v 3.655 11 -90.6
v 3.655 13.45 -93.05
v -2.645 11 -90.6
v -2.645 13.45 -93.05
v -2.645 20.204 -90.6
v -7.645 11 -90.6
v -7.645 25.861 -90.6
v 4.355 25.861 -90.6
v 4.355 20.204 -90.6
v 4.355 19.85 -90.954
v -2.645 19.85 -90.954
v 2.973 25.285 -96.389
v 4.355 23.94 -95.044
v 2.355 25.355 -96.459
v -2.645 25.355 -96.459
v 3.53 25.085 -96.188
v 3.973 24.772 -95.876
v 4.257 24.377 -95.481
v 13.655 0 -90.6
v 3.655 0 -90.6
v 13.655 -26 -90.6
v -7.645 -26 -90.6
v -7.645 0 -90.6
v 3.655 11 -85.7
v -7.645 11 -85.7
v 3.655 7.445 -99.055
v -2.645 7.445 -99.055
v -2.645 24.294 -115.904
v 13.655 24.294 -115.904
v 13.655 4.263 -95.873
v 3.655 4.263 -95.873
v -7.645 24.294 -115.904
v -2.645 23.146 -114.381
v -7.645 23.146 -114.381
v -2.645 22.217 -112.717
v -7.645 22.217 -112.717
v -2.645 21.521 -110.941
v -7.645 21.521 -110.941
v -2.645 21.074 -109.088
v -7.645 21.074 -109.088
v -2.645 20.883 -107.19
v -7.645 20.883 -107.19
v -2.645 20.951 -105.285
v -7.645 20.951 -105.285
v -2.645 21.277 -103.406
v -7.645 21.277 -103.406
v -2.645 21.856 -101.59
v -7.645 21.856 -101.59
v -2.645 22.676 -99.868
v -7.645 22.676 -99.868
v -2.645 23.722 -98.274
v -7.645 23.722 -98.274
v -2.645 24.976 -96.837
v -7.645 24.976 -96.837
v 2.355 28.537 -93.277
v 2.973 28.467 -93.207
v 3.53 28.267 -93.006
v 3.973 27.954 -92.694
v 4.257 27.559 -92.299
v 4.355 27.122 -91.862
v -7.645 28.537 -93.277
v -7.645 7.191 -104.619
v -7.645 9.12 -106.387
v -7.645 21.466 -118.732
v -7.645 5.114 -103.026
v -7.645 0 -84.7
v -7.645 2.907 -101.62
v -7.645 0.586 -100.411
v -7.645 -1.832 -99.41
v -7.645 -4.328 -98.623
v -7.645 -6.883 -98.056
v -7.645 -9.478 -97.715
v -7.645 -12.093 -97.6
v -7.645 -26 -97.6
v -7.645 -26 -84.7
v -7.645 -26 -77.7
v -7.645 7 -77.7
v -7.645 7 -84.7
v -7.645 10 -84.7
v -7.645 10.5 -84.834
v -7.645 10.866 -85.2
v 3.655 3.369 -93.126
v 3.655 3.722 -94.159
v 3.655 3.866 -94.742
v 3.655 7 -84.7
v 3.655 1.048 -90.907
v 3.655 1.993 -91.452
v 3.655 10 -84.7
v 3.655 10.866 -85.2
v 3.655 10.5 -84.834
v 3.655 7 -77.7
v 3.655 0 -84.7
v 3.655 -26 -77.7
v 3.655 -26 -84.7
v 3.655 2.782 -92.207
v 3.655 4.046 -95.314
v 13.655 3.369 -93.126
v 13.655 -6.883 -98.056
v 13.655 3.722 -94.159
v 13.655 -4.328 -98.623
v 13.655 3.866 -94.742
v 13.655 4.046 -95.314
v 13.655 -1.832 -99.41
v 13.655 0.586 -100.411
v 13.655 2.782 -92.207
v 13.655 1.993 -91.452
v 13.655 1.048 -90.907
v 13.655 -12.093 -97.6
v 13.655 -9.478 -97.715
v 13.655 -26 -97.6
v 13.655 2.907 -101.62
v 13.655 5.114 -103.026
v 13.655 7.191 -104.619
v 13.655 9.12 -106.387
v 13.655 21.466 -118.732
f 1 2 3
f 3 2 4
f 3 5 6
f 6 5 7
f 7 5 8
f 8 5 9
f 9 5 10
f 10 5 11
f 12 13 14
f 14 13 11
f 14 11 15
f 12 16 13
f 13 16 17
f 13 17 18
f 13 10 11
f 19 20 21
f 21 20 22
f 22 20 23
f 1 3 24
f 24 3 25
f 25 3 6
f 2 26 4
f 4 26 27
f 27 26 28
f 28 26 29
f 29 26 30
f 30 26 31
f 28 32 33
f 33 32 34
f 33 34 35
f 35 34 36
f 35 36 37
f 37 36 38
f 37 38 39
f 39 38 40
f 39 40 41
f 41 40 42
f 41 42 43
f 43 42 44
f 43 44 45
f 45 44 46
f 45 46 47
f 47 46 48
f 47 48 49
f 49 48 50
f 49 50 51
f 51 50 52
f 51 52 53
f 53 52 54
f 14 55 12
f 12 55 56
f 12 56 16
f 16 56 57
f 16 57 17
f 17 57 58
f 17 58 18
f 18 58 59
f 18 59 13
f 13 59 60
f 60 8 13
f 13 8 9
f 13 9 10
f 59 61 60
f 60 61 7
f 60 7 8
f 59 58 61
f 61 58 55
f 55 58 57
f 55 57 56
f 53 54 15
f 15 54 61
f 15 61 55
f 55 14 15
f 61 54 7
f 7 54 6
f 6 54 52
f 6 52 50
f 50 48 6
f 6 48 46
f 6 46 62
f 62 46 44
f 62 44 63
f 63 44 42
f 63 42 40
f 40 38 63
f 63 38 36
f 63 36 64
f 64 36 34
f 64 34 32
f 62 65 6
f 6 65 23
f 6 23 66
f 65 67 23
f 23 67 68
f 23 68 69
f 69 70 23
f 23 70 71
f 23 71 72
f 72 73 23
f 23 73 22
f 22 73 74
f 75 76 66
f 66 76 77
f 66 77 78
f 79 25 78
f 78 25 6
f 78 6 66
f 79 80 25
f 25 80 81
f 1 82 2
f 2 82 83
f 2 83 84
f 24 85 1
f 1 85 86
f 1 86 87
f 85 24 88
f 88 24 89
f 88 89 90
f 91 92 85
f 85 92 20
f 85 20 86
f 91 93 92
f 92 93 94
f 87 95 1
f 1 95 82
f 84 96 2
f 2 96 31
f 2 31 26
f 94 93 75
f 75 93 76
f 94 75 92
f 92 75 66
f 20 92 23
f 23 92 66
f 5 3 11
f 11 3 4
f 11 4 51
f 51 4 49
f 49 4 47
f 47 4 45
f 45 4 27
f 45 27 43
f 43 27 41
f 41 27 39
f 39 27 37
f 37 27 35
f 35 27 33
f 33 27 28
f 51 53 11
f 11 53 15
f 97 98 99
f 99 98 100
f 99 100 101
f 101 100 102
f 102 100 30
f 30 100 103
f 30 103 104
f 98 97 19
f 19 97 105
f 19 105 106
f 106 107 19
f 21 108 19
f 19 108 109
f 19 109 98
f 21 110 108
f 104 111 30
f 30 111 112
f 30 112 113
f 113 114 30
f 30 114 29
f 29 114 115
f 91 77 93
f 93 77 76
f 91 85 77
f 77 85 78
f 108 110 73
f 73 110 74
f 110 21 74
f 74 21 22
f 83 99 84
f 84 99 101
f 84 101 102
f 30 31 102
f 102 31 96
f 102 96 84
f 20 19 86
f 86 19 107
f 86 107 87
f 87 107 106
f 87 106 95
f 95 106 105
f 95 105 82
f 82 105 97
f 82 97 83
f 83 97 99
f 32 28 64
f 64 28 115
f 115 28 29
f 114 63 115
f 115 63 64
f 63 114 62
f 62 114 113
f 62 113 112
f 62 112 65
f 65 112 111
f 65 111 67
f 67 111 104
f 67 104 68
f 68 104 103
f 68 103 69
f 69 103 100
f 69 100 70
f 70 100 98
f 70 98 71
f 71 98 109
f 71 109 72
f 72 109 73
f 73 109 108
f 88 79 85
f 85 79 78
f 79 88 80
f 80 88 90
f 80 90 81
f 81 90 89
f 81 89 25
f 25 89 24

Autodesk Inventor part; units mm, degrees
ref_plane "YZ Plane" through (0, 0, 0) normal (1, 0, 0) x (0, 1, 0)
ref_plane "XZ Plane" through (0, 0, 0) normal (0, 1, 0) x (-1, 0, 0)
ref_plane "XY Plane" through (0, 0, 0) normal (0, 0, 1) x (1, 0, 0)
sketch "Sketch1" plane through (0, 0, 0) normal (0, 1, 0) x (-1, 0, 0)
  line L0 (23.4955, 9.8996) -> (-50.8045, 9.8996)
  line L1 (-50.8045, 9.8996) -> (-50.8045, -84.7004)
  line L2 (-50.8045, -84.7004) -> (23.4955, -84.7004)
  line L3 (23.4955, -84.7004) -> (23.4955, 9.8996)
  line L4 (29.4455, 15.7996) -> (-56.7545, 15.7996)
  line L5 (-56.7545, 15.7996) -> (-56.7545, -90.6004)
  line L6 (-56.7545, -90.6004) -> (29.4455, -90.6004)
  line L7 (29.4455, -90.6004) -> (29.4455, 15.7996)
  line L8 (29.4455, -37.4004) -> (-56.7545, -37.4004) construction
  line L9 (-13.6545, -90.6004) -> (-13.6545, 15.7996) construction
  dimension "d0" = 94.6
  dimension "d1" = 74.3
  dimension "d2" = 106.4
  dimension "d3" = 86.2
extrude "Extrusion1" add sketch "Sketch1" along normal blind 6
fillet "Fillet1" radius 4.5 4 edges at (-23.4955, 3, 9.8996) (50.8045, 3, 9.8996) (50.8045, 3, -84.7004) (-23.4955, 3, -84.7004)
fillet "Fillet2" radius 4.5 4 edges at (56.7545, 3, 15.7996) (-29.4455, 3, 15.7996) (56.7545, 3, -90.6004) (-29.4455, 3, -90.6004)
sketch "Sketch2" plane through (0, 0, 0) normal (0, -1, 0) x (1, 0, 0)
  line L0 (50.8045, -80.2004) -> (50.8045, 5.3996) projected
  arc A0 (46.3045, -84.7004) -> (50.8045, -80.2004) centre (46.3045, -80.2004) ccw projected
  line L1 (-18.9955, -84.7004) -> (46.3045, -84.7004) projected
  arc A1 (-23.4955, -80.2004) -> (-18.9955, -84.7004) centre (-18.9955, -80.2004) ccw projected
  line L2 (-23.4955, 5.3996) -> (-23.4955, -80.2004) projected
  arc A2 (-18.9955, 9.8996) -> (-23.4955, 5.3996) centre (-18.9955, 5.3996) ccw projected
  line L3 (46.3045, 9.8996) -> (-18.9955, 9.8996) projected
  arc A3 (50.8045, 5.3996) -> (46.3045, 9.8996) centre (46.3045, 5.3996) ccw projected
  line L4 (43.8045, -77.7004) -> (-16.4955, -77.7004)
  line L5 (-16.4955, -77.7004) -> (-16.4955, 2.8996)
  line L6 (-16.4955, 2.8996) -> (43.8045, 2.8996)
  line L7 (43.8045, 2.8996) -> (43.8045, -77.7004)
  line L8 (13.6545, -84.7004) -> (13.6545, 9.8996) construction
  line L9 (46.3045, 9.8996) -> (-18.9955, 9.8996) construction
  line L10 (50.8045, -80.2004) -> (50.8045, 5.3996) construction
  line L11 (50.8045, -37.4004) -> (-23.4955, -37.4004) construction
  line L12 (56.7545, 11.2996) -> (56.7545, -86.1004) construction
  point P0 (0, 0)
  dimension "d8" = 5.95
  dimension "d9" = 7
  dimension "d10" = 7
extrude "Extrusion2" add sketch "Sketch2" along normal blind 6
fillet "Fillet3" radius 4.5 4 edges at (43.8045, -3, -77.7004) (43.8045, -3, 2.8996) (-16.4955, -3, 2.8996) (-16.4955, -3, -77.7004)
sketch "Sketch3" plane through (0, 0, 0) normal (0, 1, 0) x (1, 0, 0)
  arc A0 (46.3045, -9.8996) -> (50.8045, -5.3996) centre (46.3045, -5.3996) ccw projected
  line L0 (50.8045, 80.2004) -> (50.8045, -5.3996) projected
  arc A1 (50.8045, 80.2004) -> (46.3045, 84.7004) centre (46.3045, 80.2004) ccw projected
  line L1 (-18.9955, 84.7004) -> (46.3045, 84.7004) projected
  arc A2 (-18.9955, 84.7004) -> (-23.4955, 80.2004) centre (-18.9955, 80.2004) ccw projected
  line L2 (-23.4955, -5.3996) -> (-23.4955, 80.2004) projected
  arc A3 (-23.4955, -5.3996) -> (-18.9955, -9.8996) centre (-18.9955, -5.3996) ccw projected
  line L3 (46.3045, -9.8996) -> (-18.9955, -9.8996) projected
  arc A4 (43.8045, 73.2004) -> (39.3045, 77.7004) centre (39.3045, 73.2004) ccw projected
  line L4 (43.8045, 1.6004) -> (43.8045, 73.2004) projected
  arc A5 (39.3045, -2.8996) -> (43.8045, 1.6004) centre (39.3045, 1.6004) ccw projected
  line L5 (-11.9955, -2.8996) -> (39.3045, -2.8996) projected
  arc A6 (-16.4955, 1.6004) -> (-11.9955, -2.8996) centre (-11.9955, 1.6004) ccw projected
  line L6 (-16.4955, 73.2004) -> (-16.4955, 1.6004) projected
  arc A7 (-11.9955, 77.7004) -> (-16.4955, 73.2004) centre (-11.9955, 73.2004) ccw projected
  line L7 (39.3045, 77.7004) -> (-11.9955, 77.7004) projected
  point P0 (0, 0)
extrude "Extrusion3" add sketch "Sketch3" along normal blind 2
ref_plane "Work Plane1" through (-23.4955, 6, -84.7004) normal (0, 0.7071068, -0.7071068) x (1, 0, 0)
sketch "Sketch5" plane through (-23.4955, 6, -84.7004) normal (0, 0.7071068, -0.7071068) x (1, 0, 0)
  line L0 (4.5, 0) -> (69.8, 0) projected
  line L1 (37.15, 0) -> (37.15, -42.3796) construction
  circle A0 centre (37.15, 1.34) radius 1.34 construction
  line L2 (37.15, 1.34) -> (37.15, -18.66) construction
  line L3 (38.49, 1.34) -> (38.49, -18.66)
  line L4 (35.81, -18.66) -> (35.81, 1.34)
  arc A1 (38.49, 1.34) -> (35.81, 1.34) centre (37.15, 1.34) ccw
  arc A2 (35.81, -18.66) -> (38.49, -18.66) centre (37.15, -18.66) ccw
  point P0 (23.4955, -55.6496)
  point P1 (37.15, -8.66)
  dimension "d20" = 2.68
  dimension "d19" = 90
  dimension "d21" = 20
  dimension "d22" = 2.68
extrude "Extrusion5" cut sketch "Sketch5" along normal mid plane 51.82
sketch "Sketch6" plane through (-23.4955, 6, -84.7004) normal (0, 0.7071068, -0.7071068) x (1, 0, 0)
  arc A0 (38.49, 1.34) -> (35.81, 1.34) centre (37.15, 1.34) ccw projected
  line L0 (38.49, 0) -> (38.49, 1.34) projected
  arc A1 (38.49, 1.34) -> (35.81, 1.34) centre (37.15, 1.34) ccw projected
  line L1 (35.81, 1.34) -> (35.81, 0) projected
  line L2 (4.5, 0) -> (35.81, 0) projected
  line L3 (4.5, 2.8284) -> (4.5, 0) projected
  line L4 (4.5, 2.8284) -> (69.8, 2.8284) projected
  line L5 (69.8, 0) -> (69.8, 2.8284) projected
  line L6 (38.49, 0) -> (69.8, 0) projected
  line L7 (75.75, 8.4146) -> (-1.45, 8.4146) projected
  line L8 (74.9473, 2.68) -> (-18.0058, 2.68) construction
  line L9 (0, -55.225) -> (0, 5.3033) construction
  line L10 (90.8097, 9.1284) -> (-67.1811, 9.1284) construction
  line L11 (37.15, 2.68) -> (37.15, 37.6448) construction
  line L12 (58.45, 9.1284) -> (15.85, 9.1284)
  line L13 (15.85, 9.1284) -> (15.85, 13.1284)
  line L14 (15.85, 13.1284) -> (58.45, 13.1284)
  line L15 (58.45, 13.1284) -> (58.45, 9.1284)
  point P0 (23.4955, -55.6496)
  dimension "d25" = 6.3
  dimension "d26" = 42.6
  dimension "d27" = 4
extrude "Extrusion6" add sketch "Sketch6" along normal blind 35 contours L12 L13 L14 L15
sketch "Sketch7" plane through (-23.4955, 30.7487, -109.4492) normal (0, 0.7071068, -0.7071068) x (-1, 0, 0)
  line L0 (-15.85, -13.1284) -> (-15.85, -9.1284) projected
  line L1 (-58.45, -9.1284) -> (-58.45, -13.1284) projected
  point P0 (-23.4955, 55.6496)
  point P1 (-15.85, -11.1284)
  point P2 (-58.45, -11.1284)
  dimension "d30" = 42.6
sketch "Sketch8" plane through (34.9545, -3.2832, -93.9836) normal (1, 0, 0) x (0, 0.7071068, -0.7071068)
  line L0 (-0.0707, 4.7139) -> (-3.2527, 7.8958) projected
  line L1 (0.9899, 12.1385) -> (4.1719, 8.9565) projected
  line L2 (0, 0) -> (35, 0) projected
  line L3 (-0.0707, 4.7139) -> (-14.2134, -9.4288) construction
  line L4 (0, 4) -> (35, 4) projected
  line L5 (0, 4) -> (0, 0) projected
  line L6 (4.1719, 8.9565) -> (-4.7846, 0)
  line L7 (-4.7846, 0) -> (0, 0)
  line L8 (0, 0) -> (0, 4) projected
  line L9 (0, 0) -> (0, 4)
  line L10 (4.1719, 8.9565) -> (4.1719, 4)
  line L11 (0, 4) -> (35, 4) projected
  line L12 (4.1719, 4) -> (0, 4)
  line L13 (-0.0707, 4.7139) -> (4.1719, 8.9565) projected
  point P0 (-64.1349, 68.778)
  point P1 (4.1719, 4)
extrude "Extrusion7" add sketch "Sketch8" against normal blind 42.6
sketch "Sketch9" plane through (34.9545, -6.6664, -90.6004) normal (1, 0, 0) x (0, 0, -1)
  line L0 (0, 6.6664) -> (0, 0) projected
  line L1 (0, 0) -> (28.1319, 28.1319) projected
  line L2 (0, 0) -> (0, 6.6664) projected
  line L3 (0, 0) -> (0, -20)
  line L4 (0, -20) -> (5, -20)
  line L5 (5, -20) -> (5, 5)
  line L6 (0, 0) -> (28.1319, 28.1319) projected
  line L7 (5, 5) -> (0, 0)
  point P0 (-90.6004, 6.6664)
  point P1 (5, 5)
  dimension "d33" = 5
  dimension "d34" = 20
extrude "Extrusion8" add sketch "Sketch9" against normal blind 42.6
sketch "Sketch10" plane through (-7.6455, 24.294, -115.9039) normal (0, 0.7071068, 0.7071068) x (1, 0, 0)
  line L0 (0, -30.8281) -> (42.6, -30.8281) projected
  line L1 (42.6, -30.8281) -> (42.6, 0) projected
  line L2 (0, 0) -> (42.6, 0) projected
  line L3 (0, -30.8281) -> (0, 0) projected
  line L4 (42.6, -30.8281) -> (0, -30.8281) projected
  line L5 (0, -30.8281) -> (5, -30.8281)
  line L6 (5, -30.8281) -> (5, 0)
  line L7 (5, 0) -> (0, 0)
  line L8 (0, 0) -> (0, -30.8281)
  line L9 (42.6, 0) -> (0, 0) projected
  line L10 (37.6, 0) -> (42.6, 0)
  line L11 (42.6, 0) -> (42.6, -30.8281)
  line L12 (42.6, -30.8281) -> (37.6, -30.8281)
  line L13 (37.6, -30.8281) -> (37.6, 0)
  point P0 (7.6455, -99.1349)
  point P1 (37.6, 0)
  point P2 (37.6, -30.8281)
  dimension "d37" = 5
  dimension "d38" = 5
extrude "Extrusion9" add sketch "Sketch10" along normal blind 19 contours L3 L2 L6 L0 | L13 L2 L1 L0
sketch "Sketch11" plane through (-7.6455, 37.729, -102.4689) normal (0, 0.7071068, 0.7071068) x (1, 0, 0)
  line L0 (0, -30.8281) -> (5, -30.8281) projected
  line L1 (5, 0) -> (0, 0) projected
  point P0 (7.6455, -99.1349)
  point P1 (2.5, 0)
  point P2 (2.5, -30.8281)
  dimension "d41" = 30.8281
sketch "Sketch12" plane through (-2.6455, 2.4952, -94.1052) normal (1, 0, 0) x (0, -0.7071068, -0.7071068)
  line L0 (0, 30.8281) -> (0, 0) projected
  line L1 (0, 30.8281) -> (-19, 30.8281) projected
  line L2 (-19, 0) -> (-19, 30.8281) projected
  line L3 (-4.9565, 0) -> (-19, 0) projected
  line L4 (0, 0) -> (-4.9565, 0) projected
  line L5 (-19, 30.8281) -> (-15, 30.8281)
  line L6 (-15, 30.8281) -> (-15, 0)
  line L7 (-15, 0) -> (-19, 0)
  line L8 (-19, 0) -> (-19, 30.8281)
  point P0 (-64.778, -68.3068)
  dimension "d42" = 15
extrude "Extrusion10" add sketch "Sketch12" along normal blind 8.5 contours L6 L3 L2 L1
sketch "Sketch13" plane through (29.9545, 2.4952, -94.1052) normal (-1, 0, 0) x (0, 0.7071068, 0.7071068)
  line L0 (0, 0) -> (0, 30.8281) projected
  line L1 (4.9565, 0) -> (0, 0) projected
  line L2 (4.9565, 0) -> (19, 0) projected
  line L3 (19, 30.8281) -> (19, 0) projected
  line L4 (0, 30.8281) -> (19, 30.8281) projected
  line L5 (19, 30.8281) -> (7.45, 30.8281)
  line L6 (7.45, 30.8281) -> (7.45, 0)
  line L7 (7.45, 0) -> (19, 0)
  line L8 (19, 0) -> (19, 30.8281)
  point P0 (64.778, -68.3068)
  point P1 (7.45, 30.8281)
  dimension "d45" = 7.45
extrude "Extrusion11" add sketch "Sketch13" along normal blind 8.5 contours L4 L3 L2 L6
sketch "Sketch14" plane through (34.9545, -26.6664, -90.6004) normal (1, 0, 0) x (0, 0, -1)
  line L0 (5, 25) -> (28.1319, 48.1319) projected
  line L1 (28.1319, 48.1319) -> (11.8685, 64.3954) projected
  line L2 (-9.9303, 42.5967) -> (11.8685, 64.3954) projected
  line L3 (0, 32.6664) -> (-9.9303, 42.5967) projected
  line L4 (0, 26.6664) -> (0, 32.6664) projected
  line L5 (0, 26.6664) -> (0, 0) projected
  line L6 (0, 0) -> (5, 0) projected
  line L7 (5, 0) -> (5, 25) projected
  line L8 (0, 32.6664) -> (3.5048, 29.1616) construction
  line L9 (-9.9303, 42.5967) -> (11.8685, 64.3954) construction
  line L10 (-7.1018, 39.7682) -> (14.6969, 61.567) construction
  line L11 (0, 32.6664) -> (-1.7632, 34.4296) projected
  line L12 (0, 52.5269) -> (0, 32.6664)
  line L13 (-1.7632, 34.4296) -> (-9.9303, 42.5967) projected
  line L14 (0, 32.6664) -> (-9.9303, 42.5967)
  line L15 (-9.9303, 42.5967) -> (0, 52.5269)
  point P0 (-90.6004, 26.6664)
  point P1 (11.8685, 64.3954)
  point P2 (0, 52.5269)
extrude "Extrusion12" cut sketch "Sketch14" against normal blind 100 contours L12 L3 L2
sketch "Sketch15" plane through (-23.4955, 30.7487, -109.4492) normal (0, 0.7071068, -0.7071068) x (-1, 0, 0)
  line L0 (-58.45, -13.1284) -> (-15.85, -13.1284) projected
  line L1 (-15.85, -13.1284) -> (-15.85, 9.8716) projected
  line L2 (-15.85, 9.8716) -> (-29.35, 9.8716) projected
  line L3 (-29.35, 5.8716) -> (-29.35, 9.8716) projected
  line L4 (-20.85, 5.8716) -> (-29.35, 5.8716) projected
  line L5 (-20.85, -9.1284) -> (-20.85, 5.8716) projected
  line L6 (-20.85, -9.1284) -> (-53.45, -9.1284) projected
  line L7 (-53.45, -9.1284) -> (-53.45, -1.6784) projected
  line L8 (-53.45, -1.6784) -> (-44.95, -1.6784) projected
  line L9 (-44.95, 9.8716) -> (-44.95, -1.6784) projected
  line L10 (-58.45, 9.8716) -> (-44.95, 9.8716) projected
  line L11 (-58.45, -13.1284) -> (-58.45, 9.8716) projected
  line L12 (-58.45, 9.8716) -> (-44.95, 9.8716)
  line L13 (-44.95, 9.8716) -> (-44.95, 2.3216)
  line L14 (-44.95, 2.3216) -> (-58.45, 2.3216)
  line L15 (-58.45, 2.3216) -> (-58.45, 9.8716)
  point P0 (-23.4955, 55.6496)
  point P1 (-51.7, 2.3216)
  point P2 (-58.45, 2.3216)
  dimension "d52" = 4
extrude "Extrusion13" cut sketch "Sketch15" against normal blind 100 contours L11 L10 L9 L14
sketch "Sketch16" plane through (-2.6455, 24.294, -115.9039) normal (0, 0.7071068, 0.7071068) x (1, 0, 0)
  line L0 (32.6, -30.8281) -> (0, -30.8281) projected
  line L1 (8.5, -20.7846) -> (0, -20.7846) projected
  point P0 (2.6455, -99.1349)
  dimension "d55" = 10.0435
sketch "Sketch17" plane through (-2.6455, 6, -90.6004) normal (1, 0, 0) x (0, 0, -1)
  line L0 (0, 14.2037) -> (0, 0) projected
  line L1 (3.5048, -3.5048) -> (0, 0) projected
  line L2 (25.3035, 18.294) -> (3.5048, -3.5048) projected
  line L3 (25.3035, 18.294) -> (14.6969, 28.9006) projected
  line L4 (14.6969, 28.9006) -> (0, 14.2037) projected
  line L5 (5.6261, -1.3835) -> (3.5048, -3.5048)
  line L6 (3.5048, -3.5048) -> (0, 0)
  line L7 (0, 0) -> (2.1213, 2.1213)
  line L8 (2.1213, 2.1213) -> (5.6261, -1.3835)
  point P0 (-90.6004, -6)
  dimension "d56" = 3
extrude "Extrusion14" add sketch "Sketch17" along normal blind 34.75 contours L7 L8 L2 L1
sketch "Sketch18" plane through (0, -6, 0) normal (0, -1, 0) x (1, 0, 0)
  line L0 (-18.9955, -84.7004) -> (46.3045, -84.7004) projected
  line L1 (39.3045, -77.7004) -> (-11.9955, -77.7004) projected
  line L2 (-7.6455, -95.6004) -> (-7.6455, -90.6004) projected
  line L3 (34.9545, -90.6004) -> (34.9545, -95.6004) projected
  line L4 (-18.9955, -84.7004) -> (46.3045, -84.7004) projected
  line L5 (-7.6455, -84.7004) -> (34.9545, -84.7004)
  line L6 (34.9545, -84.7004) -> (34.9545, -77.7004)
  line L7 (34.9545, -77.7004) -> (-7.6455, -77.7004)
  line L8 (-7.6455, -77.7004) -> (-7.6455, -84.7004)
  point P0 (0, 0)
extrude "Extrusion15" add sketch "Sketch18" along normal blind 20
fillet "Fillet5" radius 5 2 edges at (5.8545, 36.3148, -103.8831) (21.4545, 30.9761, -109.2218)
sketch "Sketch19" plane through (0, -6, 0) normal (0, -1, 0) x (1, 0, 0)
  line L0 (34.9545, -118.7324) -> (-7.6455, -118.7324) projected
  line L1 (34.9545, -95.6004) -> (34.9545, -118.7324) projected
  line L2 (34.9545, -77.7004) -> (-7.6455, -77.7004) projected
  line L3 (34.9545, -84.7004) -> (34.9545, -77.7004) projected
  line L4 (-7.6455, -77.7004) -> (-7.6455, -84.7004) projected
  line L5 (-7.6455, -95.6004) -> (-7.6455, -118.7324) projected
  line L6 (34.9545, -118.7324) -> (-7.6455, -118.7324)
  line L7 (-7.6455, -118.7324) -> (-7.6455, -77.7004)
  line L8 (-7.6455, -77.7004) -> (34.9545, -77.7004)
  line L9 (34.9545, -77.7004) -> (34.9545, -118.7324)
  point P0 (0, 0)
  point P1 (34.9545, -84.7004)
  point P2 (-7.6455, -84.7004)
extrude "Extrusion16" cut sketch "Sketch19" along normal mid plane 100 keep common part
sketch "Sketch20" plane through (34.9545, 2, -77.7004) normal (1, 0, 0) x (0, 0, -1)
  line L0 (7, -28) -> (0, -28) projected
  line L1 (7, -2) -> (7, -28) construction
  line L2 (7, -28) -> (31.0161, -28) construction
  line L3 (17.9, -28.6664) -> (12.9, -28.6664) projected
  line L4 (12.9, -28.6664) -> (17.9, -28.6664)
  line L5 (17.9, -28.6664) -> (17.9, -28)
  line L6 (17.9, -28) -> (12.9, -28)
  line L7 (12.9, -28) -> (12.9, -28.6664)
  point P0 (-77.7004, -2)
  point P1 (17.9, -28.6664)
extrude "Extrusion17" cut sketch "Sketch20" against normal blind 100
sketch "Sketch21" plane through (0, 6, 0) normal (0, 1, 0) x (1, 0, 0)
  line L0 (-7.6455, 84.7004) -> (-7.6455, 90.6004) projected
  line L1 (-7.6455, 84.7004) -> (12.3145, 84.7004) projected
  line L2 (12.3145, 84.7004) -> (12.3145, 86.5955) projected
  ellipse E0 centre (13.6545, 86.5955) end of major axis (13.6545, 88.4905) minor radius 1.34 (14.9945, 86.5955) -> (12.3145, 86.5955) ccw projected
  line L3 (14.9945, 86.5955) -> (14.9945, 84.7004) projected
  line L4 (14.9945, 84.7004) -> (34.9545, 84.7004) projected
  line L5 (34.9545, 90.6004) -> (34.9545, 84.7004) projected
  line L6 (34.9545, 90.6004) -> (29.9545, 90.6004) projected
  line L7 (29.9545, 90.6004) -> (-2.6455, 90.6004) projected
  line L8 (-2.6455, 90.6004) -> (-7.6455, 90.6004) projected
  point P0 (0, 0)
extrude "Extrusion18" add sketch "Sketch21" along normal blind 5
sketch "Sketch22" plane through (0, 2, 0) normal (0, 1, 0) x (1, 0, 0)
  line L0 (-7.6455, 77.7004) -> (-7.6455, 84.7004) projected
  line L1 (-7.6455, 77.7004) -> (12.3145, 77.7004) projected
  line L2 (12.3145, 77.7004) -> (12.3145, 82.5955) projected
  ellipse E0 centre (13.6545, 82.5955) end of major axis (13.6545, 84.4905) minor radius 1.34 (14.9945, 82.5955) -> (12.3145, 82.5955) ccw projected
  line L3 (14.9945, 82.5955) -> (14.9945, 77.7004) projected
  line L4 (14.9945, 77.7004) -> (34.9545, 77.7004) projected
  line L5 (34.9545, 84.7004) -> (34.9545, 77.7004) projected
  line L6 (-7.6455, 84.7004) -> (34.9545, 84.7004) projected
  point P0 (0, 0)
extrude "Extrusion19" add sketch "Sketch22" along normal blind 5
sketch "Sketch23" plane through (-23.4955, 6, -84.7004) normal (0, 0.7071068, -0.7071068) x (1, 0, 0)
  arc A0 (38.49, 1.34) -> (35.81, 1.34) centre (37.15, 1.34) ccw projected
  line L0 (37.15, 1.34) -> (37.15, -18.66) construction
  line L1 (35.81, 1.34) -> (35.81, -18.66)
  line L2 (38.49, -18.66) -> (38.49, 1.34)
  arc A1 (38.49, 1.34) -> (35.81, 1.34) centre (37.15, 1.34) ccw
  arc A2 (35.81, -18.66) -> (38.49, -18.66) centre (37.15, -18.66) ccw
  point P0 (23.4955, -55.6496)
  point P1 (37.15, -8.66)
  dimension "d70" = 20
extrude "Extrusion20" cut sketch "Sketch23" along normal mid plane 100
sketch "Sketch24" plane through (-2.6455, 11, -90.6004) normal (1, 0, 0) x (0, 0, -1)
  line L0 (2.1213, -2.8787) -> (5.6261, -6.3835) projected
  line L1 (25.3035, 13.294) -> (5.6261, -6.3835) projected
  line L2 (25.3035, 13.294) -> (14.6969, 23.9006) projected
  line L3 (14.6969, 23.9006) -> (0, 9.2037) projected
  line L4 (0, 9.2037) -> (0, 0) projected
  line L5 (0, 0) -> (0, -5) projected
  line L6 (0, -5) -> (2.1213, -2.8787) projected
  line L7 (0, -0.7574) -> (2.1213, -2.8787)
  line L8 (0, -0.7574) -> (0, -5)
  line L9 (0, -11) -> (-5.9, -11) projected
  line L10 (0, -5) -> (2.1213, -2.8787)
  point P0 (-90.6004, -11)
extrude "Extrusion21" add sketch "Sketch24" along normal blind 33.25 contours L6 L5 L7
sketch "Sketch25" plane through (-23.4955, 6, -84.7004) normal (0, 0.7071068, -0.7071068) x (1, 0, 0)
  line L0 (35.81, 1.34) -> (35.81, -5.6569) projected
  line L1 (38.49, -5.6569) -> (38.49, 1.34) projected
  arc A0 (38.49, 1.34) -> (35.81, 1.34) centre (37.15, 1.34) ccw projected
  line L2 (37.15, 1.34) -> (37.15, -8.66) construction
  line L3 (35.81, 1.34) -> (35.81, -8.66)
  line L4 (38.49, -8.66) -> (38.49, 1.34)
  arc A1 (38.49, 1.34) -> (35.81, 1.34) centre (37.15, 1.34) ccw
  arc A2 (35.81, -8.66) -> (38.49, -8.66) centre (37.15, -8.66) ccw
  point P0 (23.4955, -55.6496)
  point P1 (37.15, -3.66)
  dimension "d75" = 10
extrude "Extrusion22" cut sketch "Sketch25" along normal mid plane 33.25
fillet "Fillet6" radius 1 2 edges at (2.3345, 11, -84.7004) (24.9745, 11, -84.7004)
fillet "Fillet7" radius 1 8 edges at (12.3145, 10.7071, -84.9933) (12.3145, 8.5, -84.7004) (12.3145, 11, -88.1504) (14.9945, 10.7071, -84.9933) (14.9945, 8.5, -84.7004) (14.9945, 11, -88.1504) (14.9945, 7, -81.2004) (12.3145, 7, -81.2004)
sketch "Sketch26" plane through (-7.6455, 0, -90.6004) normal (-1, 0, 0) x (0, 0, 1)
  line L0 (5.9, 0) -> (5.9, -26) projected
  line L1 (12.9, -26) -> (12.9, 7) projected
  line L2 (-5, -1.6664) -> (-5, -26) projected
  line L3 (0, -26) -> (0, 0) projected
  line L4 (-5, -26) -> (0, -26) projected
  line L5 (-5, -1.6664) -> (-28.1319, 21.4655) projected
  line L6 (-5, -26) -> (-5, -1.6664) projected
  line L7 (-5, -26) -> (-7, -26)
  line L8 (-7, -26) -> (-7, 0.3336)
  line L9 (-5, -1.6664) -> (-28.1319, 21.4655) projected
  line L10 (-7, 0.3336) -> (-5, -1.6664)
  line L11 (-5, -1.6664) -> (-5, -26)
  point P0 (90.6004, 0)
  point P1 (-7, 0.3336)
  dimension "d80" = 7
  dimension "d81" = 5
  dimension "d82" = 2
sketch "Sketch27" plane through (0, -26, 0) normal (0, -1, 0) x (1, 0, 0)
  line L0 (-7.6455, -77.7004) -> (-7.6455, -84.7004) projected
  line L1 (34.9545, -84.7004) -> (34.9545, -77.7004) projected
  point P0 (0, 0)
  point P1 (-7.6455, -81.2004)
  point P2 (34.9545, -81.2004)
  dimension "d83" = 42.6
extrude "Extrusion23" add sketch "Sketch26" against normal blind 42.6
fillet "Fillet8" radius 30 1 edges at (13.6545, 0.3336, -97.6004)
ref_plane "Work Plane2" through (13.6545, -2.895, -77.7004) normal (1, 0, 0) x (0, 0, -1)
sketch "Sketch28" plane through (13.6545, -2.895, -77.7004) normal (1, 0, 0) x (0, 0, -1)
  line L0 (45.7087, -33.5387) -> (-16.3366, -33.5387)
  line L1 (-16.3366, -33.5387) -> (-16.3366, 45.9991)
  line L2 (-16.3366, 45.9991) -> (45.7087, 45.9991)
  line L3 (45.7087, 45.9991) -> (45.7087, -33.5387)
  point P0 (-77.7004, 2.895)
extrude "Extrusion24" cut sketch "Sketch28" along normal blind 100
sketch "Sketch29" plane through (13.6545, -2.895, -77.7004) normal (1, 0, 0) x (0, 0, -1)
  line L0 (13.0897, 12.948) -> (12.9, 13.1377) projected
  line L1 (12.895, 13.895) -> (12.895, 12.895) projected
  line L2 (13.0897, 12.948) -> (13.9664, 12.0713) projected
  line L3 (13.9664, 12.0713) -> (18.5261, 7.5116) projected
  line L4 (18.5261, 7.5116) -> (38.2035, 27.189) projected
  line L5 (12.9, 23.0987) -> (12.9, 13.895) projected
  line L6 (12.9, 13.1377) -> (18.5261, 7.5116) projected
  line L7 (12.9, 15.9661) -> (12.9, 13.1377)
  line L8 (12.9, 13.1377) -> (18.5261, 7.5116)
  line L9 (18.5261, 7.5116) -> (19.9403, 8.9258)
  line L10 (38.2035, 27.189) -> (18.5261, 7.5116) projected
  line L11 (19.9403, 8.9258) -> (12.9, 15.9661)
  point P0 (-77.7004, 2.895)
  point P1 (19.9403, 8.9258)
  dimension "d92" = 2
extrude "Extrusion25" add sketch "Sketch29" against normal blind 18
sketch "Sketch30" plane through (13.6545, -2.895, -77.7004) normal (1, 0, 0) x (0, 0, -1)
  line L0 (0, -1.895) -> (13.9664, 12.0713) projected
  line L1 (0, -1.895) -> (0, 0) projected
  line L2 (0, -1.895) -> (15.3806, 13.4855)
  line L3 (12.9, 15.9661) -> (12.9, 13.1377) projected
  line L4 (15.3806, 13.4855) -> (12.9, 15.9661)
  line L5 (12.9, 15.9661) -> (0, 15.9661)
  line L6 (0, -23.105) -> (0, -1.895) projected
  line L7 (0, 15.9661) -> (0, -1.895)
  point P0 (-77.7004, 2.895)
extrude "Extrusion26" cut sketch "Sketch30" against normal blind 10
sketch "Sketch31" plane through (-7.6455, 25.8605, -90.6004) normal (0, 0, 1) x (1, 0, 0)
  line L0 (11.3, -14.8605) -> (11.3, -12.7894) projected
  line L1 (11.3, -12.7894) -> (5, -12.7894) projected
  line L2 (5, -5.6569) -> (5, -12.7894) projected
  line L3 (13.5, -5.6569) -> (5, -5.6569) projected
  line L4 (13.5, 0) -> (13.5, -5.6569) projected
  line L5 (0, 0) -> (13.5, 0) projected
  line L6 (0, -14.8605) -> (0, 0) projected
  line L7 (11.3, -14.8605) -> (0, -14.8605) projected
  line L8 (11.3, -12.7894) -> (5, -12.7894)
  line L9 (5, -12.7894) -> (5, -14.8605)
  line L10 (5, -14.8605) -> (11.3, -14.8605)
  line L11 (11.3, -14.8605) -> (11.3, -12.7894)
  point P0 (7.6455, -25.8605)
  point P1 (5, -12.7894)
extrude "Extrusion27" cut sketch "Sketch31" against normal blind 7 contours L7 L9 L1 L0
sketch "Sketch32" plane through (13.6545, 6.0308, -97.6407) normal (0, 0.7071068, -0.7071068) x (-1, 0, 0)
  line L0 (16.3, 0) -> (16.3, 15) projected
  line L1 (16.3, 0) -> (0, 0) projected
  line L2 (16.3, 0) -> (9.7, 0)
  line L3 (9.7, 0) -> (9.7, 5.4204)
  line L4 (9.7, 5.4204) -> (16.3, 5.4204)
  line L5 (16.3, 5.4204) -> (16.3, 0)
  line L6 (0, -84.75) -> (0, 147.5281) projected
  point P0 (13.6545, 64.778)
  point P1 (9.7, 2.7102)
  dimension "d100" = 6.6
  dimension "d101" = 9.7
sketch "Sketch33" plane through (13.6545, -2.895, -77.7004) normal (1, 0, 0) x (0, 0, -1)
  line L0 (0, -1.895) -> (15.3806, 13.4855) projected
  line L1 (79.8676, -51.0015) -> (-84.3778, 113.2439) projected
  line L2 (19.9403, 8.9258) -> (38.2035, 27.189) projected
  line L3 (15.3806, 13.4855) -> (19.9403, 8.9258)
  line L4 (19.9403, 8.9258) -> (18.1725, 7.158)
  line L5 (18.1725, 7.158) -> (13.6128, 11.7178)
  line L6 (13.6128, 11.7178) -> (15.3806, 13.4855)
  point P0 (-77.7004, 2.895)
  point P1 (13.6128, 11.7178)
  dimension "d102" = 2.5
extrude "Extrusion28" cut sketch "Sketch33" against normal blind 10
sketch "Sketch34" plane through (13.6545, -2.895, -77.7004) normal (1, 0, 0) x (0, 0, -1)
  line L0 (18.1725, 7.158) -> (13.6128, 11.7178) projected
  line L1 (0, -1.895) -> (13.6128, 11.7178) projected
  line L2 (18.1725, 7.158) -> (13.6128, 11.7178) projected
  line L3 (18.1725, 7.158) -> (38.2035, 27.189) projected
  line L4 (16.7948, 8.5358) -> (14.6735, 6.4145)
  line L5 (13.6128, 11.7178) -> (0, -1.895) projected
  arc A0 (14.6735, 6.4145) -> (3.6254, 1.7304) centre (14.9391, -9.5833) ccw
  line L6 (3.6254, 1.7304) -> (13.6128, 11.7178)
  line L7 (13.6128, 11.7178) -> (16.7948, 8.5358)
  point P0 (-77.7004, 2.895)
  point P1 (3.6254, 1.7304)
  point P2 (16.7948, 8.5358)
  dimension "d105" = 4.5
  dimension "d106" = 3
  dimension "d107" = 16
extrude "Extrusion29" cut sketch "Sketch34" against normal blind 10
fillet "Fillet10" radius 10 1 edges at (8.6545, -4.7901, -77.7004)
sketch "Sketch35" plane through (3.6545, -2.895, -77.7004) normal (1, 0, 0) x (0, 0, -1)
  line L0 (14.9711, 13.895) -> (8, 13.895) projected
  arc A0 (8, 13.895) -> (7, 12.895) centre (8, 12.895) ccw projected
  line L1 (7, 9.895) -> (7, 12.895) projected
  line L2 (0, 9.895) -> (7, 9.895) projected
  line L3 (0, -6.0372) -> (0, 9.895) projected
  arc A1 (2.9289, 1.0339) -> (0, -6.0372) centre (10, -6.0372) ccw projected
  line L4 (3.6254, 1.7304) -> (2.9289, 1.0339) projected
  line L5 (14.9711, 13.895) -> (19.9403, 8.9258) projected
  arc A2 (14.6735, 6.4145) -> (3.6254, 1.7304) centre (14.9391, -9.5833) ccw projected
  line L6 (16.7948, 8.5358) -> (14.6735, 6.4145) projected
  line L7 (18.1725, 7.158) -> (16.7948, 8.5358) projected
  line L8 (19.9403, 8.9258) -> (18.1725, 7.158) projected
  point P0 (-77.7004, 2.895)
sketch "Sketch36" plane through (13.6545, -2.895, -77.7004) normal (1, 0, 0) x (0, 0, -1)
  line L0 (38.2035, 27.189) -> (27.5969, 37.7956) projected
  line L1 (41.0319, 24.3606) -> (28.6868, 12.0154) projected
  line L2 (21.2329, 37.0885) -> (12.9, 28.7556) projected
  line L3 (18.1725, 7.158) -> (38.2035, 27.189) projected
  line L4 (41.0319, 24.3606) -> (24.7685, 40.624) projected
  line L5 (24.7685, 40.624) -> (38.2035, 27.189)
  line L6 (38.2035, 27.189) -> (29.0111, 17.9966)
  line L7 (29.0111, 17.9966) -> (15.5761, 31.4317)
  line L8 (15.5761, 31.4317) -> (24.7685, 40.624)
  point P0 (-77.7004, 2.895)
  point P1 (31.486, 33.9065)
  dimension "d111" = 13
extrude "Extrusion30" cut sketch "Sketch36" against normal blind 100
sketch "Sketch37" plane through (-7.6455, 37.729, -102.4689) normal (0, 0.7071068, 0.7071068) x (1, 0, 0)
  line L0 (5, -20.7846) -> (5, -27.2925) projected
  line L1 (13.5, -13) -> (13.5, -16.7846) projected
  line L2 (13.5, -16.7846) -> (13.5, -20.7846) projected
  line L3 (13.5, -20.7846) -> (5, -20.7846) projected
  line L4 (5, -13) -> (13.5, -13) projected
  line L5 (13.5, -20.7846) -> (12, -20.7846)
  line L6 (12, -20.7846) -> (12, -13)
  line L7 (12, -13) -> (13.5, -13)
  line L8 (13.5, -13) -> (13.5, -20.7846)
  point P0 (7.6455, -99.1349)
  dimension "d114" = 7
extrude "Extrusion31" cut sketch "Sketch37" against normal blind 10
fillet "Fillet11" radius 2 1 edges at (4.3545, 27.1224, -94.6907)
fillet "Fillet12" radius 14 1 edges at (-5.1455, 15.1016, -106.7115)
sketch "Sketch38" plane through (3.6545, -2.895, -77.7004) normal (1, 0, 0) x (0, 0, -1)
  line L0 (14.9711, 13.895) -> (8, 13.895) projected
  line L1 (79.8676, -51.0015) -> (-84.3778, 113.2439) projected
  line L2 (18.1725, 7.158) -> (38.2035, 27.189) projected
  line L3 (14.9711, 13.895) -> (19.9403, 8.9258) projected
  line L4 (14.9711, 13.895) -> (17.7995, 13.895)
  line L5 (17.7995, 13.895) -> (21.3545, 10.34)
  line L6 (21.3545, 10.34) -> (19.9403, 8.9258)
  line L7 (19.9403, 8.9258) -> (18.1725, 7.158) projected
  line L8 (19.9403, 8.9258) -> (14.9711, 13.895)
  point P0 (-77.7004, 2.895)
  dimension "d119" = 2
extrude "Extrusion32" add sketch "Sketch38" against normal blind 10
sketch "Sketch39" plane through (3.6545, -2.895, -77.7004) normal (1, 0, 0) x (0, 0, -1)
  line L0 (17.7995, 13.895) -> (8, 13.895) projected
  arc A0 (8, 13.895) -> (7, 12.895) centre (8, 12.895) ccw projected
  line L1 (7, 9.895) -> (7, 12.895) projected
  line L2 (0, 9.895) -> (7, 9.895) projected
  line L3 (0, -6.0372) -> (0, 9.895) projected
  arc A1 (2.9289, 1.0339) -> (0, -6.0372) centre (10, -6.0372) ccw projected
  line L4 (3.6254, 1.7304) -> (2.9289, 1.0339) projected
  arc A2 (14.6735, 6.4145) -> (3.6254, 1.7304) centre (14.9391, -9.5833) ccw projected
  line L5 (16.7948, 8.5358) -> (14.6735, 6.4145) projected
  line L6 (18.1725, 7.158) -> (16.7948, 8.5358) projected
  line L7 (21.3545, 10.34) -> (18.1725, 7.158) projected
  line L8 (21.3545, 10.34) -> (17.7995, 13.895) projected
  line L9 (17.7995, 13.895) -> (21.3545, 10.34) projected
  line L10 (38.2035, 27.189) -> (21.3545, 10.34) projected
  arc A3 (19.1369, 27.8708) -> (38.2035, 27.189) centre (29.0364, 37.7703) ccw projected
  line L11 (19.1369, 27.8708) -> (18.4045, 28.6032) projected
  line L12 (18.4045, 28.6032) -> (12.9, 23.0987) projected
  line L13 (12.9, 23.0987) -> (12.9, 13.895) projected
  line L14 (12.9, 13.895) -> (17.7995, 13.895) projected
  line L15 (17.7995, 13.895) -> (12.9, 18.7945)
  line L16 (12.9, 18.7945) -> (12.9, 13.895)
  line L17 (12.9, 13.895) -> (17.7995, 13.895)
  point P0 (-77.7004, 2.895)
  point P1 (12.9, 13.895)
  dimension "d122" = 0
extrude "Extrusion33" add sketch "Sketch39" against normal blind 10 contours L0 L13 L15
sketch "Sketch40" plane through (13.6545, -2.895, -77.7004) normal (1, 0, 0) x (0, 0, -1)
  line L0 (16.7948, 8.5358) -> (14.6735, 6.4145) projected
  line L1 (18.1725, 7.158) -> (16.7948, 8.5358) projected
  line L2 (18.1725, 7.158) -> (38.2035, 27.189) projected
  line L3 (21.3545, 10.34) -> (18.1725, 7.158) projected
  arc A0 (14.6735, 6.4145) -> (18.1725, 7.158) centre (14.5185, 15.7485) ccw
  arc A1 (14.6735, 6.4145) -> (3.6254, 1.7304) centre (14.9391, -9.5833) ccw projected
  point P0 (-77.7004, 2.895)
extrude "Extrusion34" cut sketch "Sketch40" against normal blind 10
sketch "Sketch41" plane through (4.3545, 20.2037, -90.6004) normal (0, -0.7071068, -0.7071068) x (-1, 0, 0)
  arc A0 (2, 7.7846) -> (0, 5.7846) centre (2, 5.7846) ccw projected
  line L0 (0, 5.7846) -> (0, 0) projected
  line L1 (0, 0) -> (7, 0) projected
  line L2 (7, 7.7846) -> (7, 0) projected
  line L3 (7, 7.7846) -> (2, 7.7846) projected
  point P0 (4.3545, -78.3503)
extrude "Extrusion35" add sketch "Sketch41" along normal blind 0.5
sketch "Sketch42" plane through (3.6545, -2.895, -77.7004) normal (1, 0, 0) x (0, 0, -1)
  line L0 (12.9, 18.7945) -> (12.9, 13.895) projected
  line L1 (21.3545, 10.34) -> (12.9, 18.7945) projected
  line L2 (12.9, 13.895) -> (12.9, 28.7556) projected
  line L3 (12.9, 13.895) -> (15.3497, 16.3448)
  line L4 (12.9, 18.7945) -> (21.3545, 10.34) projected
  line L5 (15.3497, 16.3448) -> (12.9, 18.7945)
  line L6 (12.9, 13.895) -> (8, 13.895) projected
  line L7 (12.9, 18.7945) -> (12.9, 13.895)
  point P0 (-77.7004, 2.895)
extrude "Extrusion36" cut sketch "Sketch42" against normal blind 6.3
sketch "Sketch44" plane through (13.6545, -2.895, -77.7004) normal (1, 0, 0) x (0, 0, -1)
  arc A0 (14.6735, 6.4145) -> (18.1725, 7.158) centre (14.5185, 15.7485) ccw projected
  arc A1 (14.6735, 6.4145) -> (3.6254, 1.7304) centre (14.9391, -9.5833) ccw projected
  line L0 (2.9289, 1.0339) -> (3.6254, 1.7304) projected
  arc A2 (2.9289, 1.0339) -> (0, -6.0372) centre (10, -6.0372) ccw projected
  line L1 (0, -23.105) -> (0, -6.0372) projected
  line L2 (7, -23.105) -> (0, -23.105) projected
  line L3 (7, 2.895) -> (7, -23.105) projected
  line L4 (12.9, 2.895) -> (7, 2.895) projected
  line L5 (12.9, -23.105) -> (12.9, 2.895) projected
  line L6 (19.9, -23.105) -> (12.9, -23.105) projected
  line L7 (19.9, -9.1978) -> (19.9, -23.105) projected
  arc A3 (28.6868, 12.0154) -> (19.9, -9.1978) centre (49.9, -9.1978) ccw projected
  line L8 (41.0319, 24.3606) -> (28.6868, 12.0154) projected
  line L9 (38.2035, 27.189) -> (41.0319, 24.3606) projected
  line L10 (18.1725, 7.158) -> (38.2035, 27.189) projected
  arc A4 (14.6735, 6.4145) -> (18.1725, 7.158) centre (14.5185, 15.7485) ccw projected
  arc A5 (16.459, 6.6171) -> (12.9, 2.895) centre (17.4091, 2.1461) ccw
  point P0 (-77.7004, 2.895)
extrude "Extrusion38" cut sketch "Sketch44" against normal blind 10 contours A0 A5 L4 L3 L2 L1 A2 L0 A1
properties part number "MPM_connector_holder_part_2"
